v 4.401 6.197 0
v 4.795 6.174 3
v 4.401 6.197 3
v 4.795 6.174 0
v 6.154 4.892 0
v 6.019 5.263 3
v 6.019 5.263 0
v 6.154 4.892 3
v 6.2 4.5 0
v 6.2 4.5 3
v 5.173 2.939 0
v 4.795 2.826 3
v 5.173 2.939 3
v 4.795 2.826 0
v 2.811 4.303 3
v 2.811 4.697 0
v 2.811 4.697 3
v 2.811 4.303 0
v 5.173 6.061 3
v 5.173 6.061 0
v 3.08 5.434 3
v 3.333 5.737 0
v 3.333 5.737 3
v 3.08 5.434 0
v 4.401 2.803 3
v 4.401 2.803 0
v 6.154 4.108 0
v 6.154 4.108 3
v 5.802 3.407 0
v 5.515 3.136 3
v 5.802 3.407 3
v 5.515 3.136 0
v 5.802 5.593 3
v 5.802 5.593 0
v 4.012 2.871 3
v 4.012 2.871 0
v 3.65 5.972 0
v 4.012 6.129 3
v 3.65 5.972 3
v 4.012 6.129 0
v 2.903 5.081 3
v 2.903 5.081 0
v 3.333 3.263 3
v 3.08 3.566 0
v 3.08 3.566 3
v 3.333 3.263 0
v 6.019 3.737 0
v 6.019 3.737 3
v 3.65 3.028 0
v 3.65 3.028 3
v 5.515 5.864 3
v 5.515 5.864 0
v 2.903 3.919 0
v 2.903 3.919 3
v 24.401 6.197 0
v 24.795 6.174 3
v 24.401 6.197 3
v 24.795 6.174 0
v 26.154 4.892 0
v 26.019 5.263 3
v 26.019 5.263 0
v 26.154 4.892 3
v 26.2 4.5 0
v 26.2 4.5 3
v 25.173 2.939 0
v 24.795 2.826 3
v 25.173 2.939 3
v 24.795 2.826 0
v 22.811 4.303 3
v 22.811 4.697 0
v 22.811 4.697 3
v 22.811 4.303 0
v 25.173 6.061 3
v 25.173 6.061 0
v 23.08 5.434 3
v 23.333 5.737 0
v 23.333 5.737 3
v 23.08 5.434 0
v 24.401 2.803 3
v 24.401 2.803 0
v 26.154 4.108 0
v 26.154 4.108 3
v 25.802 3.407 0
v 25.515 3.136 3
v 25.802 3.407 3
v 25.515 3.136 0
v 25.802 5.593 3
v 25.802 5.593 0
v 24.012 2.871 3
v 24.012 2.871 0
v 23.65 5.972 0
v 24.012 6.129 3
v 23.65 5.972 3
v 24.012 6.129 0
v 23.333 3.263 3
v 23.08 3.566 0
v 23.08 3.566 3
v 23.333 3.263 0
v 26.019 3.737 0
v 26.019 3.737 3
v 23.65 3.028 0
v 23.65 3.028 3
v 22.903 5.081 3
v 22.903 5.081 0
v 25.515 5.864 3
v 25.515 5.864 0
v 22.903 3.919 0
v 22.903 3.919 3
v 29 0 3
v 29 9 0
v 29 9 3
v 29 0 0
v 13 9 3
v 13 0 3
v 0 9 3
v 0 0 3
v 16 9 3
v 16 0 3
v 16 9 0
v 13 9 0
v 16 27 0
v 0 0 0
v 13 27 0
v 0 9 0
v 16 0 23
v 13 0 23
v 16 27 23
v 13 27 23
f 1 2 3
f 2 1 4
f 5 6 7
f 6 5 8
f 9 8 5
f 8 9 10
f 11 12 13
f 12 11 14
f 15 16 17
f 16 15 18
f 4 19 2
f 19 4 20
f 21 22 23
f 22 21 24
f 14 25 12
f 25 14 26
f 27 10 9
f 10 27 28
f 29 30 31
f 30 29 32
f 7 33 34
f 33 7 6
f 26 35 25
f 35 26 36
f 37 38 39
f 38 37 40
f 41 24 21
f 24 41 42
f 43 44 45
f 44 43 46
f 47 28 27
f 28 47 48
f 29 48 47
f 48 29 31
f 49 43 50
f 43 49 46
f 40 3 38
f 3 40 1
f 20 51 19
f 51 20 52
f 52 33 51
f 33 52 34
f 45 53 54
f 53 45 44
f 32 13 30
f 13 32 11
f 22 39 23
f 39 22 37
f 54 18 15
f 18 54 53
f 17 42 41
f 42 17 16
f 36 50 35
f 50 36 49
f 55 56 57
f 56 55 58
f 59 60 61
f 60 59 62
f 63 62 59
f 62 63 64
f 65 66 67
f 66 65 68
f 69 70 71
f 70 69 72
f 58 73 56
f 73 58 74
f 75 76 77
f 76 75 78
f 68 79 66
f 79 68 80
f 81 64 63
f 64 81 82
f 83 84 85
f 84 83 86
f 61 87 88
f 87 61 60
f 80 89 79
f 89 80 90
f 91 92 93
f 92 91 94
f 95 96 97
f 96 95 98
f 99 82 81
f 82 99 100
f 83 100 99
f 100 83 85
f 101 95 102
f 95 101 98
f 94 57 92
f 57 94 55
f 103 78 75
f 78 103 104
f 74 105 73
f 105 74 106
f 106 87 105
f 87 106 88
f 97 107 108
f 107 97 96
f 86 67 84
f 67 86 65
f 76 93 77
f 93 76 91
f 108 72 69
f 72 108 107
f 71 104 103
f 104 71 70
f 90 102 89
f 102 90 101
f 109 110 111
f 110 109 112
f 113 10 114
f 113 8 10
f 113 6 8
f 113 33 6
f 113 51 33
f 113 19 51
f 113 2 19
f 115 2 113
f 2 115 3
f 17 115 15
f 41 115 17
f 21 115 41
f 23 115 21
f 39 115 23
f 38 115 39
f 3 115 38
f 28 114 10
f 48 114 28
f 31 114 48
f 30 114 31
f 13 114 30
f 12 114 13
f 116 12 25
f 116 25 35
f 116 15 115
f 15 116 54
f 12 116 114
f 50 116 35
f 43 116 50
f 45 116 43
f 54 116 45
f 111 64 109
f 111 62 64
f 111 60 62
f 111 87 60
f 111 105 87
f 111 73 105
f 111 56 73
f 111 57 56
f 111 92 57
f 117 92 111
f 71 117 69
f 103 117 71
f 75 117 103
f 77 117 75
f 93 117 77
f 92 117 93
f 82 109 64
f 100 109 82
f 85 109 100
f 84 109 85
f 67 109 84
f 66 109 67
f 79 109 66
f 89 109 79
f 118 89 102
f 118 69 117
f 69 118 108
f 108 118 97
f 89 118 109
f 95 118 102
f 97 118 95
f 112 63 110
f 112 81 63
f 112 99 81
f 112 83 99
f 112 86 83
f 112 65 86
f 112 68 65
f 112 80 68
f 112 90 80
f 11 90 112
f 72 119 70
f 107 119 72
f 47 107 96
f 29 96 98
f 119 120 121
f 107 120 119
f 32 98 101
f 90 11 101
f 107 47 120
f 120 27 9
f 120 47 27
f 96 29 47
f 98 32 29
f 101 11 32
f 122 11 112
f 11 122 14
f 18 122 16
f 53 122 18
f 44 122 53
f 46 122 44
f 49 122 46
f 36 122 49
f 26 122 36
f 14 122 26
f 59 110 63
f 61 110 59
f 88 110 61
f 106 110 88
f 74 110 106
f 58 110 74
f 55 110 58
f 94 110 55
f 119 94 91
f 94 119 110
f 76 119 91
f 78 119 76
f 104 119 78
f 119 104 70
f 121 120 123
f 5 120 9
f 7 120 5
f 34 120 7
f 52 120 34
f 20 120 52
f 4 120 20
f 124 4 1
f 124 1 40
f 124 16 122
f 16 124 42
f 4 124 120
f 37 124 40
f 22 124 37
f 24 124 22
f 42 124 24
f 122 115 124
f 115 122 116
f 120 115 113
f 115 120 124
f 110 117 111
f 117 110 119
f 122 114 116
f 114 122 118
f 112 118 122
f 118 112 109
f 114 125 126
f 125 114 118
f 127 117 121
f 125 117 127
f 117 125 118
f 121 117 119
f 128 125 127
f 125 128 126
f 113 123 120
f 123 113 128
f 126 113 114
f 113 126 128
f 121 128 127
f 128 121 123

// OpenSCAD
$fa = 1;
$fs = 0.4;

tolerance = 0.4;
hole_diam = 3;
holes_distance = 20;
thickness = 3;

distnace_to_drawer = 29;

base_width = hole_diam + holes_distance + thickness * 2;
base_height = hole_diam + thickness * 2;

difference() {
    cube(size = [base_width, base_height, thickness]);
    for (i = [0:1:1]) {
        translate([thickness + hole_diam / 2 + holes_distance * i, thickness + hole_diam / 2, -1])
            cylinder(d = hole_diam + tolerance, h = thickness + 2);
    }
}

translate([thickness + hole_diam + holes_distance / 2 - thickness, 0, 0])
    cube(size = [thickness, distnace_to_drawer - 2, 20 + thickness]);
